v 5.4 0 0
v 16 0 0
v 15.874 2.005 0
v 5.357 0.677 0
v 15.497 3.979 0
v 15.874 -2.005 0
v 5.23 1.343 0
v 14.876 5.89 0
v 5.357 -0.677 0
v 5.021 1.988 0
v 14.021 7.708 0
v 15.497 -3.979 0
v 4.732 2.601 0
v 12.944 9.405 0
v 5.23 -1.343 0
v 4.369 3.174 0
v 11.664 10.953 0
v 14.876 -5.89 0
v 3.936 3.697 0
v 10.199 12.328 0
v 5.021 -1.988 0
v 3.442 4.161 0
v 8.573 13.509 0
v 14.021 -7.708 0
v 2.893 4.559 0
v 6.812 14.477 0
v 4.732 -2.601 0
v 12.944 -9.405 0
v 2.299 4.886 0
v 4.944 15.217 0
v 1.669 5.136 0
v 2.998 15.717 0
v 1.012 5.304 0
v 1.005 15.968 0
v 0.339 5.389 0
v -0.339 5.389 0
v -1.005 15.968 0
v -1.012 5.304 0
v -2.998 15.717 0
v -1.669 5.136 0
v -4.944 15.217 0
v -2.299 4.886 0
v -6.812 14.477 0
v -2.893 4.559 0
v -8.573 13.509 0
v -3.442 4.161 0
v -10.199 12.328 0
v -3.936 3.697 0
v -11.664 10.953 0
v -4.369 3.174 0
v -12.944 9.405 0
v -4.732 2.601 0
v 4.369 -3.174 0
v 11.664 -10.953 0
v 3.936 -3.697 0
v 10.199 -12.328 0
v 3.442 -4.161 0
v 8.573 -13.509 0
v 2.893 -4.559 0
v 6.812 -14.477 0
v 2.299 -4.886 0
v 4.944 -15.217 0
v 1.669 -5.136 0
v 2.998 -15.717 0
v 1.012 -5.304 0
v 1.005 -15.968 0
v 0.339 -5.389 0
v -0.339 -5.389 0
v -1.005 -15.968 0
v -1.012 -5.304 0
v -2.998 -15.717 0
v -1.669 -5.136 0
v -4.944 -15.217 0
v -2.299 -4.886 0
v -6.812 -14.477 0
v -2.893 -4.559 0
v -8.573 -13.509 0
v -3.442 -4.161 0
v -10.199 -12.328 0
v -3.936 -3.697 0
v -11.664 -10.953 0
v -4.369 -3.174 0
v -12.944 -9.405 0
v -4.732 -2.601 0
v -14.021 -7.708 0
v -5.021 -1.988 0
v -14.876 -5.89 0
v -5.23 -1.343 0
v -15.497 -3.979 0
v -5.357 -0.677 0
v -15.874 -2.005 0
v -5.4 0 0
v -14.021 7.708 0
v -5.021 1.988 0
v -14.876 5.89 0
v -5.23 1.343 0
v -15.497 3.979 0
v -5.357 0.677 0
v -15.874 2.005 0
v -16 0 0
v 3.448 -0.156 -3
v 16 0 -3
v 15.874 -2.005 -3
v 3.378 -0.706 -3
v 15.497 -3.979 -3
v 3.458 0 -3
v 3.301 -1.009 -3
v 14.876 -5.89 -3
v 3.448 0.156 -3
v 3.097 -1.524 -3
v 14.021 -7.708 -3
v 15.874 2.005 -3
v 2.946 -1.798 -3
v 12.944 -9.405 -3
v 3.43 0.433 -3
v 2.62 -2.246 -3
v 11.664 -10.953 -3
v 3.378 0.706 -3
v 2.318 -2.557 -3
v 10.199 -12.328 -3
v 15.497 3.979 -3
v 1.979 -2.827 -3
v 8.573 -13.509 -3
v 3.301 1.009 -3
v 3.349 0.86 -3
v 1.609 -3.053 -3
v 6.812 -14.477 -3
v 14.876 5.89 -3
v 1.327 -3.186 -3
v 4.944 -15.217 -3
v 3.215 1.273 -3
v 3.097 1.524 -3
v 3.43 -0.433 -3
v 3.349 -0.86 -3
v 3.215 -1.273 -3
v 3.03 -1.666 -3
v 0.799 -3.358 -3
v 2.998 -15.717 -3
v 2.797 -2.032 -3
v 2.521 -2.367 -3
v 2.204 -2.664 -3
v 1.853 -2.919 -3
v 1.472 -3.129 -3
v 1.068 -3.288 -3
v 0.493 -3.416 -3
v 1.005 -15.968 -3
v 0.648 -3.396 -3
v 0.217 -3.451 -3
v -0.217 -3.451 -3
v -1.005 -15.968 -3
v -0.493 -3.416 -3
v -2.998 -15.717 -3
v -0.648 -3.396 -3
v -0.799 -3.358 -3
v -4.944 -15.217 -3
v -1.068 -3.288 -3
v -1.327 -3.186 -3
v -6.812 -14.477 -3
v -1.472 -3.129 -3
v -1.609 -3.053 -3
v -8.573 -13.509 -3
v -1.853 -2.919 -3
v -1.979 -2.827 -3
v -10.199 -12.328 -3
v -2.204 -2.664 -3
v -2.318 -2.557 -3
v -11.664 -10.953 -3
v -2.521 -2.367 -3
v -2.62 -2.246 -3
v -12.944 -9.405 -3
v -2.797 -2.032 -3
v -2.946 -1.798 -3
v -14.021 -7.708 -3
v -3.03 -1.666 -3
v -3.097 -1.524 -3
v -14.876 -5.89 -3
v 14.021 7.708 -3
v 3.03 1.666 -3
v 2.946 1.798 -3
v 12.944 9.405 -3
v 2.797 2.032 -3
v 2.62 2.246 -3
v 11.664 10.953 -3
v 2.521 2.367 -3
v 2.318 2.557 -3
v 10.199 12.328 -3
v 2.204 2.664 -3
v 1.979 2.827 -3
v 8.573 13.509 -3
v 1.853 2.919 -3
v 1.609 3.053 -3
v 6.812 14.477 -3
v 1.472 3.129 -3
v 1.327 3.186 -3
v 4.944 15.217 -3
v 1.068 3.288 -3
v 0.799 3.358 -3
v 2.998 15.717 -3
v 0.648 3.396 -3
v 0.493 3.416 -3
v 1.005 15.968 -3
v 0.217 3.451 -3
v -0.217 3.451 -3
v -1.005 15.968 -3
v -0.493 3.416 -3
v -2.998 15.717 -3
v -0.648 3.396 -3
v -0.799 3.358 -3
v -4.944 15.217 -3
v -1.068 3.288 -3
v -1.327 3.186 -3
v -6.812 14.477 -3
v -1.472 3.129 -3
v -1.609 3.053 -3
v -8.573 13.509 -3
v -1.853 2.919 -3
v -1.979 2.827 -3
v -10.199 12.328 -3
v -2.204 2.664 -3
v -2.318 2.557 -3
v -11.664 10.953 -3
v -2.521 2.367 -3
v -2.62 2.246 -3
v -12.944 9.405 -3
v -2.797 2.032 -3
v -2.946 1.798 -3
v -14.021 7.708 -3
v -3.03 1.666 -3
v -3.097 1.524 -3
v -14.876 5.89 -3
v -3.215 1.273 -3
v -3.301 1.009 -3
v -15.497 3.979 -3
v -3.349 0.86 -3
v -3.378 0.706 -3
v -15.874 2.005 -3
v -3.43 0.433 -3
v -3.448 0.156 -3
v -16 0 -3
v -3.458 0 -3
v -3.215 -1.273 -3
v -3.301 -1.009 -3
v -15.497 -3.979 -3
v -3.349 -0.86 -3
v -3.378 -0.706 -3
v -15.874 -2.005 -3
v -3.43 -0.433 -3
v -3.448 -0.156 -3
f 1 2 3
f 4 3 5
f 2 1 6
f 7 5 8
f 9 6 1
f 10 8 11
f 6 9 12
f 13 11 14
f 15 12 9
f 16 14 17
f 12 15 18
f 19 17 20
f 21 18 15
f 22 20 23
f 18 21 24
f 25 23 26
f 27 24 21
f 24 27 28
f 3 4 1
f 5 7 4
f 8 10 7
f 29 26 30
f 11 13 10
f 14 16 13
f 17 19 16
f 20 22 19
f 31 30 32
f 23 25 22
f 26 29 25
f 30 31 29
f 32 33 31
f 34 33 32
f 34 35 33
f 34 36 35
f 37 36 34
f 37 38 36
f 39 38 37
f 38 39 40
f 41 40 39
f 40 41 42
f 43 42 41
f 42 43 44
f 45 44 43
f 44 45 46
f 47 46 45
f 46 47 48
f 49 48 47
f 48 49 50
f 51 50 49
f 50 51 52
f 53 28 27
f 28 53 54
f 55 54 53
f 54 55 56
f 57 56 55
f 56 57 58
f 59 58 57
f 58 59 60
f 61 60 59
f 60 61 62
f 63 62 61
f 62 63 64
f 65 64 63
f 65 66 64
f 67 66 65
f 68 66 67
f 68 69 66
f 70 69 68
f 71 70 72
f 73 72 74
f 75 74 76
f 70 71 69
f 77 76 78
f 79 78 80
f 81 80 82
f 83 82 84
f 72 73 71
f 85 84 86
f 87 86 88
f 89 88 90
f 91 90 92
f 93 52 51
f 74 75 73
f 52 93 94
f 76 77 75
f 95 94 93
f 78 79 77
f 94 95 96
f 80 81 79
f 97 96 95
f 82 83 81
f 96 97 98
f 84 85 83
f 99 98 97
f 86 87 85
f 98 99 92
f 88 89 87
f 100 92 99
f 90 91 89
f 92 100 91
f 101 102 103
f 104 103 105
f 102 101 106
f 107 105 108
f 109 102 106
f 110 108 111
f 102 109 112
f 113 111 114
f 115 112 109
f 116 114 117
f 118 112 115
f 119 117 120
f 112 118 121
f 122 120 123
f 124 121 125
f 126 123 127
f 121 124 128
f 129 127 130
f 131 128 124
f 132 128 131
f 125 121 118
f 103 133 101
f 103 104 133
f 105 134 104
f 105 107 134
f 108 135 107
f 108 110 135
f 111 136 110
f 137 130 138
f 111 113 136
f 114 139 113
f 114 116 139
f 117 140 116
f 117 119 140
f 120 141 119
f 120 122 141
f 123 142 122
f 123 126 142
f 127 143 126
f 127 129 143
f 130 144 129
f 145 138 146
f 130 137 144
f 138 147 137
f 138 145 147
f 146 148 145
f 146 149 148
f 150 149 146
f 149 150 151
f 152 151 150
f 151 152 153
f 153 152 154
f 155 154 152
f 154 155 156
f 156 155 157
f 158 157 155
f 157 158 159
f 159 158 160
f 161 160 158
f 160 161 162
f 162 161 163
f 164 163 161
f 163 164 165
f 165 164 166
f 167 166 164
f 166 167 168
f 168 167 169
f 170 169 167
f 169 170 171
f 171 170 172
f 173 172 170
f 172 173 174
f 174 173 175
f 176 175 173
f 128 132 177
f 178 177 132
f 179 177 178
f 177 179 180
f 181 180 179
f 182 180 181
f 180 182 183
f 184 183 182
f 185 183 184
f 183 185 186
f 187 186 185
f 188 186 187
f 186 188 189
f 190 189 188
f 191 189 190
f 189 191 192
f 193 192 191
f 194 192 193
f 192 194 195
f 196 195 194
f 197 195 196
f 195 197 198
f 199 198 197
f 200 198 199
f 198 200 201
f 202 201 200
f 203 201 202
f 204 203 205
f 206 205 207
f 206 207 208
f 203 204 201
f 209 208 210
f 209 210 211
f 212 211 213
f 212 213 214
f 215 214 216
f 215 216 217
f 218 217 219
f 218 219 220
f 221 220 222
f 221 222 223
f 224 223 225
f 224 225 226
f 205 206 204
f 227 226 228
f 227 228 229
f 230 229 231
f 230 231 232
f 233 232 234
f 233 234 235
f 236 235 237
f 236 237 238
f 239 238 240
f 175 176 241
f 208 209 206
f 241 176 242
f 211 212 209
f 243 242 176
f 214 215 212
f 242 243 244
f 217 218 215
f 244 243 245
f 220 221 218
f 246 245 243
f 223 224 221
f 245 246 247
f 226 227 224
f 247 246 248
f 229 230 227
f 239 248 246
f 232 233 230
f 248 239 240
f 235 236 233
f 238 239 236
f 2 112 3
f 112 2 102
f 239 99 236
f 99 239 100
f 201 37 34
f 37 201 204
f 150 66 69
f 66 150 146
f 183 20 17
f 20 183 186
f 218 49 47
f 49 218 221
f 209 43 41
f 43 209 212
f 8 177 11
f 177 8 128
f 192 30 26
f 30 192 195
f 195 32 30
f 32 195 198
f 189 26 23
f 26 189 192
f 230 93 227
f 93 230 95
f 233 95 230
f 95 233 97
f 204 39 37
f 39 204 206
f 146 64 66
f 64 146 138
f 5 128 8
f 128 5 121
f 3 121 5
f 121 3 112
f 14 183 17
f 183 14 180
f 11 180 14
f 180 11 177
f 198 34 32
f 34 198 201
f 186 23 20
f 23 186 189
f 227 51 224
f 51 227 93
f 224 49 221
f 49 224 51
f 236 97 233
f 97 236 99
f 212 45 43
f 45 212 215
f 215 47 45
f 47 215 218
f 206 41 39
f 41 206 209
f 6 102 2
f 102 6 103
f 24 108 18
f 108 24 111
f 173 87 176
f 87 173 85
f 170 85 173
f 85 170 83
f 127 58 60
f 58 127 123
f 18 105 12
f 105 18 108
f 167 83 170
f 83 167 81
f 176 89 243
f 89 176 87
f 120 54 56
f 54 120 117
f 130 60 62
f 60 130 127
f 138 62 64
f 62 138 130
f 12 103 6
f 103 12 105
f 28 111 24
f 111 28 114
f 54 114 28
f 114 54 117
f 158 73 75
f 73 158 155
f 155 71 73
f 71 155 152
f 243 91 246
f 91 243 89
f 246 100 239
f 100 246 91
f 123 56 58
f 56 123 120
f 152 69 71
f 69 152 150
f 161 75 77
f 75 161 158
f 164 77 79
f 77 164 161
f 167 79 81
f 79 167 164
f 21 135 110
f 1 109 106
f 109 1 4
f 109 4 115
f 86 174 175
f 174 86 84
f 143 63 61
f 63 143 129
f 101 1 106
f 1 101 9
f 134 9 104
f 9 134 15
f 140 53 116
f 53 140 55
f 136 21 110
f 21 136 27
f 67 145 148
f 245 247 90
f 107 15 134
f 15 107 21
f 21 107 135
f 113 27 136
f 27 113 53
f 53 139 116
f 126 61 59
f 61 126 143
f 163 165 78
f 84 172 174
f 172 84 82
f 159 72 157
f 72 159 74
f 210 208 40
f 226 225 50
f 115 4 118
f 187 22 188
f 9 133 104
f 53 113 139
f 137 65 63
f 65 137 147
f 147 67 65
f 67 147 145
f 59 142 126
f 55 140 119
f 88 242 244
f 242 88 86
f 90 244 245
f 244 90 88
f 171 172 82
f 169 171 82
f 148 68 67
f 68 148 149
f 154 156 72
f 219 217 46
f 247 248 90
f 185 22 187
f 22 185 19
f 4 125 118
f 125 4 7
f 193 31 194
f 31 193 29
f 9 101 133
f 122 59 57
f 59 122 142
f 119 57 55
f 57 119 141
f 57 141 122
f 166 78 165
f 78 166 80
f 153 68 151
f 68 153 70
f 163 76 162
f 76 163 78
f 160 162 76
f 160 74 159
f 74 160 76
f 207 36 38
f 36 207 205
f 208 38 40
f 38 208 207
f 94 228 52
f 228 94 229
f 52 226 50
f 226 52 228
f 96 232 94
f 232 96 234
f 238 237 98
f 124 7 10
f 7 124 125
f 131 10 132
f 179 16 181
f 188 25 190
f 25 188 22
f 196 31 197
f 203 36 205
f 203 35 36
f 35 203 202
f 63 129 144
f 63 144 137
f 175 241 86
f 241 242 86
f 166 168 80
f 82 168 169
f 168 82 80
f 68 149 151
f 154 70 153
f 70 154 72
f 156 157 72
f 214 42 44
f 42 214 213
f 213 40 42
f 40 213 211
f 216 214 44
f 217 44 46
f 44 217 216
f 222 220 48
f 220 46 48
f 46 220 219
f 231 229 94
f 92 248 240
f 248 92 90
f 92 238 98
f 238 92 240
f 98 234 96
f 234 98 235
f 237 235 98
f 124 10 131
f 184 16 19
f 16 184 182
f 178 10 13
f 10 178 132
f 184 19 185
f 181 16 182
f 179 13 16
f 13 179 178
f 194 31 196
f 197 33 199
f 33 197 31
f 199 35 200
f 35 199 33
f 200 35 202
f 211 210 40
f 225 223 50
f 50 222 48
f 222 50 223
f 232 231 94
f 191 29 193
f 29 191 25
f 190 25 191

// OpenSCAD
$fn = 50;


difference() {
	union() {
		translate(v = [0, 0, -3.0000000000]) {
			cylinder(h = 3, r = 10.0000000000);
		}
		translate(v = [0, 0, -3.0000000000]) {
			cylinder(h = 3, r = 16.0000000000);
		}
	}
	union() {
		translate(v = [0, 0, 0]) {
			rotate(a = [0, 0, 0]) {
				difference() {
					union() {
						#translate(v = [0, 0, -3.0000000000]) {
							cylinder(h = 3, r = 2.6000000000);
						}
						#translate(v = [0, 0, -3.9000000000]) {
							cylinder(h = 3.9000000000, r = 10.0000000000, r1 = 2.8750000000, r2 = 5.4000000000);
						}
						#translate(v = [0, 0, -3.0000000000]) {
							cylinder(h = 3, r = 2.8750000000);
						}
						#translate(v = [0, 0, -3.0000000000]) {
							cylinder(h = 3, r = 2.6000000000);
						}
					}
					union();
				}
			}
		}
	}
}
